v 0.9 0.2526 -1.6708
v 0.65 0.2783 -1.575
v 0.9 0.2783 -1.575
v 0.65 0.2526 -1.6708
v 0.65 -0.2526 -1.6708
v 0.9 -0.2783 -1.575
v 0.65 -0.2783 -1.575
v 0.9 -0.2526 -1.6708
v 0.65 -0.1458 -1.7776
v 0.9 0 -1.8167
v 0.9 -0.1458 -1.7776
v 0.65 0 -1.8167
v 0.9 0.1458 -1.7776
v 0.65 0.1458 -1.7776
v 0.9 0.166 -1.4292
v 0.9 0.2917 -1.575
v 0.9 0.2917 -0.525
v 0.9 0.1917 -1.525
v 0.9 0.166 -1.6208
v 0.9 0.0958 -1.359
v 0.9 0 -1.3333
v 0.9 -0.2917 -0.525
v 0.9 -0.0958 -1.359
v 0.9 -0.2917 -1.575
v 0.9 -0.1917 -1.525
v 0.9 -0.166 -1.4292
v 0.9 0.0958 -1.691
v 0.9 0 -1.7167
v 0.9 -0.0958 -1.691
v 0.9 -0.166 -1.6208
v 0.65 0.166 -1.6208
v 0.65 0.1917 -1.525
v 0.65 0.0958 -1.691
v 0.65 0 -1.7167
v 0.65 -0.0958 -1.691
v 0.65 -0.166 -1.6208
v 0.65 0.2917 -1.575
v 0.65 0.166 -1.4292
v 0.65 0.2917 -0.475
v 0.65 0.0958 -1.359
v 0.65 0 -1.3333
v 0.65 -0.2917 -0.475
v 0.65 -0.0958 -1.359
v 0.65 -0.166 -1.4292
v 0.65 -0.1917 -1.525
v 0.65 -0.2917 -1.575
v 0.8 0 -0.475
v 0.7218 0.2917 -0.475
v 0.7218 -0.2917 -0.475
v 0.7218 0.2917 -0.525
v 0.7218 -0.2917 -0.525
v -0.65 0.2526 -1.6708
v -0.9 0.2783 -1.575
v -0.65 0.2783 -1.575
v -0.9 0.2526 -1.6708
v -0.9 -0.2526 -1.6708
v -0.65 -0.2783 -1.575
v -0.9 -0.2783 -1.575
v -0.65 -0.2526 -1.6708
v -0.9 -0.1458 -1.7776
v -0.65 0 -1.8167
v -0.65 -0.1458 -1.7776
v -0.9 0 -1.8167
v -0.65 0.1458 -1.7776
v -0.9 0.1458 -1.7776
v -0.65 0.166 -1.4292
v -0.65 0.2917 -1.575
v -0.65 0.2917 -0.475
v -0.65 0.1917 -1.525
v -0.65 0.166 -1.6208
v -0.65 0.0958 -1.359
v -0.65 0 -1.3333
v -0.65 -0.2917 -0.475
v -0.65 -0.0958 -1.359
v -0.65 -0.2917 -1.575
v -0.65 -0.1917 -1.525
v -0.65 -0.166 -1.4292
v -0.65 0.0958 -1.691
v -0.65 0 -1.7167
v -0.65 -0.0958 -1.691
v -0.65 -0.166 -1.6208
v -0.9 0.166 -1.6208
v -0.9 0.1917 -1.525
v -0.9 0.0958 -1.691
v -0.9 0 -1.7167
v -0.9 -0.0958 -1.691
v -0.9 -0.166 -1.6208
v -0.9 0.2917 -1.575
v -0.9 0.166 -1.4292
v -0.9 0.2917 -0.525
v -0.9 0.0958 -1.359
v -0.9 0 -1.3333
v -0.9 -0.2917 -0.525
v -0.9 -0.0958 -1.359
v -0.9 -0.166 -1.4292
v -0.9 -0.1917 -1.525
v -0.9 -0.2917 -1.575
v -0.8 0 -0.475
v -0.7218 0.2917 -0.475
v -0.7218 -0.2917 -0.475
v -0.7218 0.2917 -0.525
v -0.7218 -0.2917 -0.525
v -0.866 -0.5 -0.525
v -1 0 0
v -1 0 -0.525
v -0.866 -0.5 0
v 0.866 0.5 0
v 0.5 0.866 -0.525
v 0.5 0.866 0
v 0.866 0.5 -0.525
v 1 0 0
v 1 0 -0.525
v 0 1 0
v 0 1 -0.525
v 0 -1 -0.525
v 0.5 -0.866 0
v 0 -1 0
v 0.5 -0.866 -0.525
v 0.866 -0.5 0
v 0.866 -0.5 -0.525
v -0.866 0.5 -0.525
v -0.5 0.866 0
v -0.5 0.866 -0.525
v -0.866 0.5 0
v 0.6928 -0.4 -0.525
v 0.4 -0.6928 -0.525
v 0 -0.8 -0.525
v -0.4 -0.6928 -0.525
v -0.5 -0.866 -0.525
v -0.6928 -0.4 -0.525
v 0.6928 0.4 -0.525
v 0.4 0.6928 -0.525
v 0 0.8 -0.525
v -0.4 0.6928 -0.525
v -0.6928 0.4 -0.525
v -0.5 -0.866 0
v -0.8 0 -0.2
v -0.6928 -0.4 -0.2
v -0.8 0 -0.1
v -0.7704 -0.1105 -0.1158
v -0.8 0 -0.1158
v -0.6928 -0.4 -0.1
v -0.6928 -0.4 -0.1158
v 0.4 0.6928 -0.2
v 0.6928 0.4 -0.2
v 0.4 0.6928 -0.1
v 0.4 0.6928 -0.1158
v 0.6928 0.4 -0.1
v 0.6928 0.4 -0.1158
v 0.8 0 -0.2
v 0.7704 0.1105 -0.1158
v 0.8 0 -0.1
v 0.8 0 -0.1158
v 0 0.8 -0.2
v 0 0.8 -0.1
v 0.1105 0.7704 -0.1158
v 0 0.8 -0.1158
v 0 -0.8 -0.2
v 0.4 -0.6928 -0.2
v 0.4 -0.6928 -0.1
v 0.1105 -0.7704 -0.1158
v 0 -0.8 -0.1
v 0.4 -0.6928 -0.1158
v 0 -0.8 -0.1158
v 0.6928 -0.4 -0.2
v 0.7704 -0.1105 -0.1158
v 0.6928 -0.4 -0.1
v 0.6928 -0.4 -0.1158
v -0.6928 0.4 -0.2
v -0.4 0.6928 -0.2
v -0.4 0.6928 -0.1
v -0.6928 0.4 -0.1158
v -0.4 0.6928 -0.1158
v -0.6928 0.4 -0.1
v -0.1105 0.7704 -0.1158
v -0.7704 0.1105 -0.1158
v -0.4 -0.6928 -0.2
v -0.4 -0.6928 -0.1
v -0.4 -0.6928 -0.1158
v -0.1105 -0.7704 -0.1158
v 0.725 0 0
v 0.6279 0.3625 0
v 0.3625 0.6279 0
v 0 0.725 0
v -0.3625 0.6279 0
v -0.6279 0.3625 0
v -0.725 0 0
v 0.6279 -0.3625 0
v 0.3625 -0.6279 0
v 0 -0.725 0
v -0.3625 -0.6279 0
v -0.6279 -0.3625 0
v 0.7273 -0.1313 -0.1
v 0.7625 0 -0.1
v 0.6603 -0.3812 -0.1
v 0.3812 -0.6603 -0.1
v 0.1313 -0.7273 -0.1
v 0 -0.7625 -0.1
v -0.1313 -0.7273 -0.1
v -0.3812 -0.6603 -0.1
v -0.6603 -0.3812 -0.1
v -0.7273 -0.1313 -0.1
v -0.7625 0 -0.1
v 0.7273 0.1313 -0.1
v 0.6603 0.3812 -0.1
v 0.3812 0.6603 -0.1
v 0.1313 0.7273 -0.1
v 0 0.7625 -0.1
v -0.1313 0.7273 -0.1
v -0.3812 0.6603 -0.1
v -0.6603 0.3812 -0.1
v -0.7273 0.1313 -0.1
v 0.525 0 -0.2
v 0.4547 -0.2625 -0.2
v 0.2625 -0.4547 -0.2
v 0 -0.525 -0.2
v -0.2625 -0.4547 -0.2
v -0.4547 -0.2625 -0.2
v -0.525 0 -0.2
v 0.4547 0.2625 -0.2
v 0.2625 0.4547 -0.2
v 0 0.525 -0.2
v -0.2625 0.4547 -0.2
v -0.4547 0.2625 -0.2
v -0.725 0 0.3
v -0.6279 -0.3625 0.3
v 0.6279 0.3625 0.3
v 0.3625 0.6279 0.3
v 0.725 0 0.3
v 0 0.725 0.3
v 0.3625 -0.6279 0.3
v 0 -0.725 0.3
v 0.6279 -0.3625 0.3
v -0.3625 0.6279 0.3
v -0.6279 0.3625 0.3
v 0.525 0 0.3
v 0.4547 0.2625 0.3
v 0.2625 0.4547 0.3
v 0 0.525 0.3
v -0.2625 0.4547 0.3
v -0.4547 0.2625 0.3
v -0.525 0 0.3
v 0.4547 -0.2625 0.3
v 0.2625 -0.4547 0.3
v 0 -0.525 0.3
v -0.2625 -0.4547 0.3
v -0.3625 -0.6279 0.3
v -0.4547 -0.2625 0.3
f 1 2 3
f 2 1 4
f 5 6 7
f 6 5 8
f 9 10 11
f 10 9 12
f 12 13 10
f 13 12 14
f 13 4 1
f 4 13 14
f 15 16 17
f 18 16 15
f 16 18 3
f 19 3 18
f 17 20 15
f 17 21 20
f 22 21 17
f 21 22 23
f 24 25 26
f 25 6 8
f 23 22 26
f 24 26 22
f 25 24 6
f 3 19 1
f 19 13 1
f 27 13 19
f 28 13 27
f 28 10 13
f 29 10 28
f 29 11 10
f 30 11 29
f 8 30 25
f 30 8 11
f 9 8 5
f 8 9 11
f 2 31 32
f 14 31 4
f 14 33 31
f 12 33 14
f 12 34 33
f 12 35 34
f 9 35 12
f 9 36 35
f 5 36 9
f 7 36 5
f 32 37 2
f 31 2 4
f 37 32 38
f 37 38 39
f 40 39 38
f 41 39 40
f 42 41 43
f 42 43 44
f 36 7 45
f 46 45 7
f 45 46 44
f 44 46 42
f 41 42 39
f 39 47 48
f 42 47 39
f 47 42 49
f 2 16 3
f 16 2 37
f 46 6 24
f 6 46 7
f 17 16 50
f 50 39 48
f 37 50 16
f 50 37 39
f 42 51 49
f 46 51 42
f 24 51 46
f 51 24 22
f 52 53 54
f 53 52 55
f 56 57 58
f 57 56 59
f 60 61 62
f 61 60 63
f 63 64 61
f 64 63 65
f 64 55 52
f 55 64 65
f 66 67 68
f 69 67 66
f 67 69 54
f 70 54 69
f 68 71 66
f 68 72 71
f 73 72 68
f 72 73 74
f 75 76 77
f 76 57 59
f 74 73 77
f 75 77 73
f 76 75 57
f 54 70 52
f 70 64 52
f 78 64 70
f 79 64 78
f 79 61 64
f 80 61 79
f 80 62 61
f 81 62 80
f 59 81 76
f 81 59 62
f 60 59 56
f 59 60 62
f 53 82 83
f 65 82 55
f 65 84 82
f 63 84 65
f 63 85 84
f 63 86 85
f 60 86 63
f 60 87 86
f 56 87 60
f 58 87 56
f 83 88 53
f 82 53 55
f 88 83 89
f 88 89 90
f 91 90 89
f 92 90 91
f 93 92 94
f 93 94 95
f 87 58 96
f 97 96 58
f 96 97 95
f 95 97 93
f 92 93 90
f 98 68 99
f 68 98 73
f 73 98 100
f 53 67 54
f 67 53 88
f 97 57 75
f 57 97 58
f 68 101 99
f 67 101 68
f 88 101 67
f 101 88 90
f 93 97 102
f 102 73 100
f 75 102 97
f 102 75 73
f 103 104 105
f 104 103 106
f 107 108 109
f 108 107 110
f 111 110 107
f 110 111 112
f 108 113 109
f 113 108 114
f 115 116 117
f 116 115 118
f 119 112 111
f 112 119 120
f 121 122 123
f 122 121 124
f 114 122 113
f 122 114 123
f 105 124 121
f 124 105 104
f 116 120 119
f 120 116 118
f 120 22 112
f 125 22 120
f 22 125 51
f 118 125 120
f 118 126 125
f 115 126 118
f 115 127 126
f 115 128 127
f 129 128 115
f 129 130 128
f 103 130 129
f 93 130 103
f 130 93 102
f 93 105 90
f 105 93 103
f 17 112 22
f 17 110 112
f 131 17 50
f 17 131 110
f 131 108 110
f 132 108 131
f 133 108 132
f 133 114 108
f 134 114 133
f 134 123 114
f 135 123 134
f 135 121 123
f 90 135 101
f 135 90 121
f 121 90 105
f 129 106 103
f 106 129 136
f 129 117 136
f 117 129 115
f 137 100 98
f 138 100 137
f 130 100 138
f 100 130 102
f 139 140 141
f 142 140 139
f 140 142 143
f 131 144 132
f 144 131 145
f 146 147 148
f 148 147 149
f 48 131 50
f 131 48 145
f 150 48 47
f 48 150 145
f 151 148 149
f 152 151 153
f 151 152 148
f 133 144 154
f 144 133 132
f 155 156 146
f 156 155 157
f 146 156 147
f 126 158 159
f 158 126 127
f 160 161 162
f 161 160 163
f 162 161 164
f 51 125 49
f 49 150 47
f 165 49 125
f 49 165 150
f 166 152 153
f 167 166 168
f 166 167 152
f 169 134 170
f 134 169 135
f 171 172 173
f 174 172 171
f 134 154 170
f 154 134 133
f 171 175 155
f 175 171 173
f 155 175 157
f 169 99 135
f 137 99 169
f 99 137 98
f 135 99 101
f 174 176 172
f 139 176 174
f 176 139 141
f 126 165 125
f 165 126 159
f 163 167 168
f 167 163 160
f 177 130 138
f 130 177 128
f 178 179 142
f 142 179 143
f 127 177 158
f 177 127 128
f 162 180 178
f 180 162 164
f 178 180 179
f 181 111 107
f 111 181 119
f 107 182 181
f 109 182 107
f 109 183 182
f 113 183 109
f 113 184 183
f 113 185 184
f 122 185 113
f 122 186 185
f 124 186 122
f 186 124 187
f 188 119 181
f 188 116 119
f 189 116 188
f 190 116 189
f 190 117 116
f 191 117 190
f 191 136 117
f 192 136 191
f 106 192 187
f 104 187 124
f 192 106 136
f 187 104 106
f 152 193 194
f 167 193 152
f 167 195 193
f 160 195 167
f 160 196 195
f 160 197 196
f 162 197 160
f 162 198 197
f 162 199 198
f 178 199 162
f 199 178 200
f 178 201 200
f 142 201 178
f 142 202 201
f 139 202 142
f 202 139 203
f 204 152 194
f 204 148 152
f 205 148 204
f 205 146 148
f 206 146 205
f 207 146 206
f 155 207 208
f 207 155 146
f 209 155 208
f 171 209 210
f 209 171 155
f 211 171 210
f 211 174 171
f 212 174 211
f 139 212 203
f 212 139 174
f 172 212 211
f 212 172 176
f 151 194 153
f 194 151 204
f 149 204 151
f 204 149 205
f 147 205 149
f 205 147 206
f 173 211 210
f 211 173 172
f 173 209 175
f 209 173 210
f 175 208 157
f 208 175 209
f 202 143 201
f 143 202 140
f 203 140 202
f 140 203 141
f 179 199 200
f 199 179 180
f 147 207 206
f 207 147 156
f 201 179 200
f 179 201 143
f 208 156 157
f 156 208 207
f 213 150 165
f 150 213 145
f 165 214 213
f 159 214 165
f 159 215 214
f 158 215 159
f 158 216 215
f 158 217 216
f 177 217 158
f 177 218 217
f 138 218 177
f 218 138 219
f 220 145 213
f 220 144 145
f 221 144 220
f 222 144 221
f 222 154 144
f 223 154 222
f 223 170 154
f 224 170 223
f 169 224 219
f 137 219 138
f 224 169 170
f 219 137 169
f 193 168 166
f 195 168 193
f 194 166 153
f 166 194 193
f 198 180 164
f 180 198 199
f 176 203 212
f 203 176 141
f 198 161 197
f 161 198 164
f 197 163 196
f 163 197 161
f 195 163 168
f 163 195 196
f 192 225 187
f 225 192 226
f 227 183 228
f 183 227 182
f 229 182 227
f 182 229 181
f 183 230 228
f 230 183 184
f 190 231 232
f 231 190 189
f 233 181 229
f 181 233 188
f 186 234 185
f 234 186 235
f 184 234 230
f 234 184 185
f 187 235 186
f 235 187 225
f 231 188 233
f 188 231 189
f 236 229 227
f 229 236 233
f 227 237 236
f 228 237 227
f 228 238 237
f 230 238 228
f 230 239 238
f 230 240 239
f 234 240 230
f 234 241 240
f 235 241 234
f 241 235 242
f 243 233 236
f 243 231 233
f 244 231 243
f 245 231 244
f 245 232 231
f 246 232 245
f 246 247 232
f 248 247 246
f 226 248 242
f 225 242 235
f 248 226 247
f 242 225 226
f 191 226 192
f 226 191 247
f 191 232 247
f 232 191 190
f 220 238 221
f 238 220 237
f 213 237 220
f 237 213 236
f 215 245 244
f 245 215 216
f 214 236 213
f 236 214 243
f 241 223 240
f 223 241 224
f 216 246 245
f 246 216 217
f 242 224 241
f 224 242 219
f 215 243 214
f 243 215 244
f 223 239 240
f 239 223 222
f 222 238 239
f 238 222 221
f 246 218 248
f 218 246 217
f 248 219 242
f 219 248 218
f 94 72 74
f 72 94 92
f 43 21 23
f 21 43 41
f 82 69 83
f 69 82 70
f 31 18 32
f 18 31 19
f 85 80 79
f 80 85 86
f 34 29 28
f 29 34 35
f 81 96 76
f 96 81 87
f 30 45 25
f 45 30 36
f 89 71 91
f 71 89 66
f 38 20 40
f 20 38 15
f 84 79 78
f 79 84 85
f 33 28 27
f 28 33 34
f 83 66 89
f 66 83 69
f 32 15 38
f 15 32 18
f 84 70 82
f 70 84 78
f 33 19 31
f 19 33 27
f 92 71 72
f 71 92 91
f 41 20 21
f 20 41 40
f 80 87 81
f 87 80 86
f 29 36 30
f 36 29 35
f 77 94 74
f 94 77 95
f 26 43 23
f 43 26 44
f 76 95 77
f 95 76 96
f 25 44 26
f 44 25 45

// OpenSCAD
tolerance=0.075;
hole_radius=0.075;
grid_hole_radius=0.075;
outer_radius=1;
thickness=0.2;
hole_attach_height=0.075;
attach_thickness=0.1;
bottom_rotation_height=1.8875;
top_rotation_height=1.525;
next_hole_radius=0.075;
next_hole_attach_height=0.075;
next_inner=0.8;
max_turn=90.0;
min_turn=90.0;
hole_twist=0.0;

//parameters that don't have to be defined explicitly
eps = tolerance/100;
inner_radius = outer_radius - thickness;
axle_offset = attach_thickness;
bottom_joint_attach_radius = outer_radius - hole_attach_height - grid_hole_radius*2 - thickness;
fn = 12;
fnh = 6;

//solve for b = axle height
max_turn_b = outer_radius / tan((180 - max_turn)/2);
min_turn_b = outer_radius / tan((180 - min_turn)/2);
axle_radius = bottom_joint_attach_radius/3;

grid_hole_height = hole_radius*2 + hole_attach_height * 2;
bottom_joint_grid_clearance = bottom_rotation_height - (hole_attach_height*2 + hole_radius*2 + grid_hole_height + max_turn_b + attach_thickness);

module angled_cylinder(angle_deg_y, _h, _r, angle_deg_x = 0) {
    rotate([angle_deg_x, angle_deg_y, 0]) { // Rotate the cylinder 
            cylinder(h = _h, r = _r, center = true, $fn = fnh);
        }
}

module joint_top() {
    operating_height = hole_attach_height*2 + attach_thickness + hole_radius*2 + grid_hole_height + bottom_joint_grid_clearance + max_turn_b;
    
    top_attach_height = axle_offset + axle_radius + max_turn_b;
    cyl_height = top_rotation_height - max_turn_b;

    difference() {
        translate([0,0, operating_height]) 
        difference() {
            union() {
                translate([0,0,- axle_radius - axle_offset + top_attach_height/2]) 
                {
                    
                    //attach points
                    axle_attach_thickness = outer_radius - thickness/2 - bottom_joint_attach_radius - tolerance ;
                    
                    attach_distance = bottom_joint_attach_radius + axle_attach_thickness/2 + tolerance;

                    translate([attach_distance, 0, 0]) {
                        translate([0,0,-top_attach_height/2 + axle_radius + axle_offset])
                        rotate([0,90,0])
                        cylinder(h=axle_attach_thickness,r=axle_radius + axle_offset,center=true, $fn = fn);
                        translate([0,0,(axle_radius + axle_offset)/2])
                    cube([axle_attach_thickness, (axle_radius + axle_offset)*2, top_attach_height - axle_offset - axle_radius + attach_thickness],center=true);
                    }
                    
                    translate([-attach_distance, 0, 0]) {
                        translate([0,0,-top_attach_height/2 + axle_radius + axle_offset])
                        rotate([0,90,0])
                        cylinder(h=axle_attach_thickness,r=axle_radius + axle_offset,center=true, $fn = fn);
                        translate([0,0,(axle_radius + axle_offset)/2])
                    cube([axle_attach_thickness, (axle_radius + axle_offset)*2, top_attach_height - axle_offset - axle_radius + attach_thickness],center=true);
                    }  
                    
                    //outer cylinder
                    translate([0,0,top_attach_height/2]) {
                        difference() {
                            cylinder(h=cyl_height,r=outer_radius,$fn=fn);
                            translate([0,0,-eps/2])
                            cylinder(h=cyl_height + eps,r=inner_radius,$fn=fn);
                        }
                        
                        //enforce min turn
                        translate([0,0,-(max_turn_b - min_turn_b)])
                        difference() {
                            cylinder(h=max_turn_b - min_turn_b,r=outer_radius,$fn=fn);
                            
                            translate([-outer_radius,-outer_radius,-eps/2])
                            cube([outer_radius*2,outer_radius - axle_radius - axle_offset + eps/2,max_turn_b - min_turn_b + eps]);
                            
                            translate([0,0,-eps/2])
                            cylinder(h=max_turn_b - min_turn_b + eps,r=inner_radius,$fn=fn);
                       }
                    }       
                } 
                
                
                //attachment segment
                translate([0,0,cyl_height + max_turn_b])
                difference() {
                        union() {
                            //attachment for smaller cylinder
                            translate([0,0,-attach_thickness])
                            cylinder(h=attach_thickness, r=outer_radius, $fn=fn);
                            translate([0,0,-attach_thickness*2])
                            cylinder(h=attach_thickness*2, r1=outer_radius, r2=next_inner - tolerance - thickness, $fn=fn);
                            
                            //small cylinder
                            cylinder(h=next_hole_radius*2 + next_hole_attach_height * 2, r = next_inner - tolerance, $fn=fn);
                        }
                        
                        //shelling
                        translate([0,0, -attach_thickness*2 - eps/2])
                        cylinder(h=next_hole_radius*2 + next_hole_attach_height * 2 + attach_thickness*2 + eps, r = min(inner_radius, next_inner - tolerance - thickness), $fn=fn);
                        
                        //holes for screws
//                        translate([0,0,next_hole_attach_height + next_hole_radius]) {
//                            angled_cylinder(0, (next_inner + thickness + eps) * 2,  next_hole_radius, 90);
//                            angled_cylinder(90, (next_inner + thickness + eps) * 2, next_hole_radius, 0);
//                        }
                    }

            }
            
            //holes for string routing
//             translate([0,-inner_radius + tolerance,max_turn_b]) 
//            rotate([90,0,0])
//            {
//                cylinder(h=thickness + inner_radius + tolerance,r=grid_hole_radius,$fn=fn);
//                translate([0,hole_attach_height + grid_hole_radius*2,0])
//                cylinder(h=thickness + inner_radius + tolerance,r=grid_hole_radius,$fn=fn);
//
//            }
//
//            translate([0,outer_radius + tolerance,min_turn_b])
//            rotate([90,0,0])
//            {
//                cylinder(h=thickness + inner_radius + tolerance,r=grid_hole_radius,$fn=fn);
//                translate([0,hole_attach_height + grid_hole_radius*2,0])
//                cylinder(h=thickness + inner_radius + tolerance,r=grid_hole_radius,$fn=fn);
//
//            }
             

        }

        //axle hole
        translate([0,0,operating_height])
        rotate([0,90,0])
        cylinder(h=outer_radius*2,r=axle_radius,center=true,$fn=fn);
        
    }
}

translate([0,0,-(bottom_rotation_height + top_rotation_height)])
joint_top();
